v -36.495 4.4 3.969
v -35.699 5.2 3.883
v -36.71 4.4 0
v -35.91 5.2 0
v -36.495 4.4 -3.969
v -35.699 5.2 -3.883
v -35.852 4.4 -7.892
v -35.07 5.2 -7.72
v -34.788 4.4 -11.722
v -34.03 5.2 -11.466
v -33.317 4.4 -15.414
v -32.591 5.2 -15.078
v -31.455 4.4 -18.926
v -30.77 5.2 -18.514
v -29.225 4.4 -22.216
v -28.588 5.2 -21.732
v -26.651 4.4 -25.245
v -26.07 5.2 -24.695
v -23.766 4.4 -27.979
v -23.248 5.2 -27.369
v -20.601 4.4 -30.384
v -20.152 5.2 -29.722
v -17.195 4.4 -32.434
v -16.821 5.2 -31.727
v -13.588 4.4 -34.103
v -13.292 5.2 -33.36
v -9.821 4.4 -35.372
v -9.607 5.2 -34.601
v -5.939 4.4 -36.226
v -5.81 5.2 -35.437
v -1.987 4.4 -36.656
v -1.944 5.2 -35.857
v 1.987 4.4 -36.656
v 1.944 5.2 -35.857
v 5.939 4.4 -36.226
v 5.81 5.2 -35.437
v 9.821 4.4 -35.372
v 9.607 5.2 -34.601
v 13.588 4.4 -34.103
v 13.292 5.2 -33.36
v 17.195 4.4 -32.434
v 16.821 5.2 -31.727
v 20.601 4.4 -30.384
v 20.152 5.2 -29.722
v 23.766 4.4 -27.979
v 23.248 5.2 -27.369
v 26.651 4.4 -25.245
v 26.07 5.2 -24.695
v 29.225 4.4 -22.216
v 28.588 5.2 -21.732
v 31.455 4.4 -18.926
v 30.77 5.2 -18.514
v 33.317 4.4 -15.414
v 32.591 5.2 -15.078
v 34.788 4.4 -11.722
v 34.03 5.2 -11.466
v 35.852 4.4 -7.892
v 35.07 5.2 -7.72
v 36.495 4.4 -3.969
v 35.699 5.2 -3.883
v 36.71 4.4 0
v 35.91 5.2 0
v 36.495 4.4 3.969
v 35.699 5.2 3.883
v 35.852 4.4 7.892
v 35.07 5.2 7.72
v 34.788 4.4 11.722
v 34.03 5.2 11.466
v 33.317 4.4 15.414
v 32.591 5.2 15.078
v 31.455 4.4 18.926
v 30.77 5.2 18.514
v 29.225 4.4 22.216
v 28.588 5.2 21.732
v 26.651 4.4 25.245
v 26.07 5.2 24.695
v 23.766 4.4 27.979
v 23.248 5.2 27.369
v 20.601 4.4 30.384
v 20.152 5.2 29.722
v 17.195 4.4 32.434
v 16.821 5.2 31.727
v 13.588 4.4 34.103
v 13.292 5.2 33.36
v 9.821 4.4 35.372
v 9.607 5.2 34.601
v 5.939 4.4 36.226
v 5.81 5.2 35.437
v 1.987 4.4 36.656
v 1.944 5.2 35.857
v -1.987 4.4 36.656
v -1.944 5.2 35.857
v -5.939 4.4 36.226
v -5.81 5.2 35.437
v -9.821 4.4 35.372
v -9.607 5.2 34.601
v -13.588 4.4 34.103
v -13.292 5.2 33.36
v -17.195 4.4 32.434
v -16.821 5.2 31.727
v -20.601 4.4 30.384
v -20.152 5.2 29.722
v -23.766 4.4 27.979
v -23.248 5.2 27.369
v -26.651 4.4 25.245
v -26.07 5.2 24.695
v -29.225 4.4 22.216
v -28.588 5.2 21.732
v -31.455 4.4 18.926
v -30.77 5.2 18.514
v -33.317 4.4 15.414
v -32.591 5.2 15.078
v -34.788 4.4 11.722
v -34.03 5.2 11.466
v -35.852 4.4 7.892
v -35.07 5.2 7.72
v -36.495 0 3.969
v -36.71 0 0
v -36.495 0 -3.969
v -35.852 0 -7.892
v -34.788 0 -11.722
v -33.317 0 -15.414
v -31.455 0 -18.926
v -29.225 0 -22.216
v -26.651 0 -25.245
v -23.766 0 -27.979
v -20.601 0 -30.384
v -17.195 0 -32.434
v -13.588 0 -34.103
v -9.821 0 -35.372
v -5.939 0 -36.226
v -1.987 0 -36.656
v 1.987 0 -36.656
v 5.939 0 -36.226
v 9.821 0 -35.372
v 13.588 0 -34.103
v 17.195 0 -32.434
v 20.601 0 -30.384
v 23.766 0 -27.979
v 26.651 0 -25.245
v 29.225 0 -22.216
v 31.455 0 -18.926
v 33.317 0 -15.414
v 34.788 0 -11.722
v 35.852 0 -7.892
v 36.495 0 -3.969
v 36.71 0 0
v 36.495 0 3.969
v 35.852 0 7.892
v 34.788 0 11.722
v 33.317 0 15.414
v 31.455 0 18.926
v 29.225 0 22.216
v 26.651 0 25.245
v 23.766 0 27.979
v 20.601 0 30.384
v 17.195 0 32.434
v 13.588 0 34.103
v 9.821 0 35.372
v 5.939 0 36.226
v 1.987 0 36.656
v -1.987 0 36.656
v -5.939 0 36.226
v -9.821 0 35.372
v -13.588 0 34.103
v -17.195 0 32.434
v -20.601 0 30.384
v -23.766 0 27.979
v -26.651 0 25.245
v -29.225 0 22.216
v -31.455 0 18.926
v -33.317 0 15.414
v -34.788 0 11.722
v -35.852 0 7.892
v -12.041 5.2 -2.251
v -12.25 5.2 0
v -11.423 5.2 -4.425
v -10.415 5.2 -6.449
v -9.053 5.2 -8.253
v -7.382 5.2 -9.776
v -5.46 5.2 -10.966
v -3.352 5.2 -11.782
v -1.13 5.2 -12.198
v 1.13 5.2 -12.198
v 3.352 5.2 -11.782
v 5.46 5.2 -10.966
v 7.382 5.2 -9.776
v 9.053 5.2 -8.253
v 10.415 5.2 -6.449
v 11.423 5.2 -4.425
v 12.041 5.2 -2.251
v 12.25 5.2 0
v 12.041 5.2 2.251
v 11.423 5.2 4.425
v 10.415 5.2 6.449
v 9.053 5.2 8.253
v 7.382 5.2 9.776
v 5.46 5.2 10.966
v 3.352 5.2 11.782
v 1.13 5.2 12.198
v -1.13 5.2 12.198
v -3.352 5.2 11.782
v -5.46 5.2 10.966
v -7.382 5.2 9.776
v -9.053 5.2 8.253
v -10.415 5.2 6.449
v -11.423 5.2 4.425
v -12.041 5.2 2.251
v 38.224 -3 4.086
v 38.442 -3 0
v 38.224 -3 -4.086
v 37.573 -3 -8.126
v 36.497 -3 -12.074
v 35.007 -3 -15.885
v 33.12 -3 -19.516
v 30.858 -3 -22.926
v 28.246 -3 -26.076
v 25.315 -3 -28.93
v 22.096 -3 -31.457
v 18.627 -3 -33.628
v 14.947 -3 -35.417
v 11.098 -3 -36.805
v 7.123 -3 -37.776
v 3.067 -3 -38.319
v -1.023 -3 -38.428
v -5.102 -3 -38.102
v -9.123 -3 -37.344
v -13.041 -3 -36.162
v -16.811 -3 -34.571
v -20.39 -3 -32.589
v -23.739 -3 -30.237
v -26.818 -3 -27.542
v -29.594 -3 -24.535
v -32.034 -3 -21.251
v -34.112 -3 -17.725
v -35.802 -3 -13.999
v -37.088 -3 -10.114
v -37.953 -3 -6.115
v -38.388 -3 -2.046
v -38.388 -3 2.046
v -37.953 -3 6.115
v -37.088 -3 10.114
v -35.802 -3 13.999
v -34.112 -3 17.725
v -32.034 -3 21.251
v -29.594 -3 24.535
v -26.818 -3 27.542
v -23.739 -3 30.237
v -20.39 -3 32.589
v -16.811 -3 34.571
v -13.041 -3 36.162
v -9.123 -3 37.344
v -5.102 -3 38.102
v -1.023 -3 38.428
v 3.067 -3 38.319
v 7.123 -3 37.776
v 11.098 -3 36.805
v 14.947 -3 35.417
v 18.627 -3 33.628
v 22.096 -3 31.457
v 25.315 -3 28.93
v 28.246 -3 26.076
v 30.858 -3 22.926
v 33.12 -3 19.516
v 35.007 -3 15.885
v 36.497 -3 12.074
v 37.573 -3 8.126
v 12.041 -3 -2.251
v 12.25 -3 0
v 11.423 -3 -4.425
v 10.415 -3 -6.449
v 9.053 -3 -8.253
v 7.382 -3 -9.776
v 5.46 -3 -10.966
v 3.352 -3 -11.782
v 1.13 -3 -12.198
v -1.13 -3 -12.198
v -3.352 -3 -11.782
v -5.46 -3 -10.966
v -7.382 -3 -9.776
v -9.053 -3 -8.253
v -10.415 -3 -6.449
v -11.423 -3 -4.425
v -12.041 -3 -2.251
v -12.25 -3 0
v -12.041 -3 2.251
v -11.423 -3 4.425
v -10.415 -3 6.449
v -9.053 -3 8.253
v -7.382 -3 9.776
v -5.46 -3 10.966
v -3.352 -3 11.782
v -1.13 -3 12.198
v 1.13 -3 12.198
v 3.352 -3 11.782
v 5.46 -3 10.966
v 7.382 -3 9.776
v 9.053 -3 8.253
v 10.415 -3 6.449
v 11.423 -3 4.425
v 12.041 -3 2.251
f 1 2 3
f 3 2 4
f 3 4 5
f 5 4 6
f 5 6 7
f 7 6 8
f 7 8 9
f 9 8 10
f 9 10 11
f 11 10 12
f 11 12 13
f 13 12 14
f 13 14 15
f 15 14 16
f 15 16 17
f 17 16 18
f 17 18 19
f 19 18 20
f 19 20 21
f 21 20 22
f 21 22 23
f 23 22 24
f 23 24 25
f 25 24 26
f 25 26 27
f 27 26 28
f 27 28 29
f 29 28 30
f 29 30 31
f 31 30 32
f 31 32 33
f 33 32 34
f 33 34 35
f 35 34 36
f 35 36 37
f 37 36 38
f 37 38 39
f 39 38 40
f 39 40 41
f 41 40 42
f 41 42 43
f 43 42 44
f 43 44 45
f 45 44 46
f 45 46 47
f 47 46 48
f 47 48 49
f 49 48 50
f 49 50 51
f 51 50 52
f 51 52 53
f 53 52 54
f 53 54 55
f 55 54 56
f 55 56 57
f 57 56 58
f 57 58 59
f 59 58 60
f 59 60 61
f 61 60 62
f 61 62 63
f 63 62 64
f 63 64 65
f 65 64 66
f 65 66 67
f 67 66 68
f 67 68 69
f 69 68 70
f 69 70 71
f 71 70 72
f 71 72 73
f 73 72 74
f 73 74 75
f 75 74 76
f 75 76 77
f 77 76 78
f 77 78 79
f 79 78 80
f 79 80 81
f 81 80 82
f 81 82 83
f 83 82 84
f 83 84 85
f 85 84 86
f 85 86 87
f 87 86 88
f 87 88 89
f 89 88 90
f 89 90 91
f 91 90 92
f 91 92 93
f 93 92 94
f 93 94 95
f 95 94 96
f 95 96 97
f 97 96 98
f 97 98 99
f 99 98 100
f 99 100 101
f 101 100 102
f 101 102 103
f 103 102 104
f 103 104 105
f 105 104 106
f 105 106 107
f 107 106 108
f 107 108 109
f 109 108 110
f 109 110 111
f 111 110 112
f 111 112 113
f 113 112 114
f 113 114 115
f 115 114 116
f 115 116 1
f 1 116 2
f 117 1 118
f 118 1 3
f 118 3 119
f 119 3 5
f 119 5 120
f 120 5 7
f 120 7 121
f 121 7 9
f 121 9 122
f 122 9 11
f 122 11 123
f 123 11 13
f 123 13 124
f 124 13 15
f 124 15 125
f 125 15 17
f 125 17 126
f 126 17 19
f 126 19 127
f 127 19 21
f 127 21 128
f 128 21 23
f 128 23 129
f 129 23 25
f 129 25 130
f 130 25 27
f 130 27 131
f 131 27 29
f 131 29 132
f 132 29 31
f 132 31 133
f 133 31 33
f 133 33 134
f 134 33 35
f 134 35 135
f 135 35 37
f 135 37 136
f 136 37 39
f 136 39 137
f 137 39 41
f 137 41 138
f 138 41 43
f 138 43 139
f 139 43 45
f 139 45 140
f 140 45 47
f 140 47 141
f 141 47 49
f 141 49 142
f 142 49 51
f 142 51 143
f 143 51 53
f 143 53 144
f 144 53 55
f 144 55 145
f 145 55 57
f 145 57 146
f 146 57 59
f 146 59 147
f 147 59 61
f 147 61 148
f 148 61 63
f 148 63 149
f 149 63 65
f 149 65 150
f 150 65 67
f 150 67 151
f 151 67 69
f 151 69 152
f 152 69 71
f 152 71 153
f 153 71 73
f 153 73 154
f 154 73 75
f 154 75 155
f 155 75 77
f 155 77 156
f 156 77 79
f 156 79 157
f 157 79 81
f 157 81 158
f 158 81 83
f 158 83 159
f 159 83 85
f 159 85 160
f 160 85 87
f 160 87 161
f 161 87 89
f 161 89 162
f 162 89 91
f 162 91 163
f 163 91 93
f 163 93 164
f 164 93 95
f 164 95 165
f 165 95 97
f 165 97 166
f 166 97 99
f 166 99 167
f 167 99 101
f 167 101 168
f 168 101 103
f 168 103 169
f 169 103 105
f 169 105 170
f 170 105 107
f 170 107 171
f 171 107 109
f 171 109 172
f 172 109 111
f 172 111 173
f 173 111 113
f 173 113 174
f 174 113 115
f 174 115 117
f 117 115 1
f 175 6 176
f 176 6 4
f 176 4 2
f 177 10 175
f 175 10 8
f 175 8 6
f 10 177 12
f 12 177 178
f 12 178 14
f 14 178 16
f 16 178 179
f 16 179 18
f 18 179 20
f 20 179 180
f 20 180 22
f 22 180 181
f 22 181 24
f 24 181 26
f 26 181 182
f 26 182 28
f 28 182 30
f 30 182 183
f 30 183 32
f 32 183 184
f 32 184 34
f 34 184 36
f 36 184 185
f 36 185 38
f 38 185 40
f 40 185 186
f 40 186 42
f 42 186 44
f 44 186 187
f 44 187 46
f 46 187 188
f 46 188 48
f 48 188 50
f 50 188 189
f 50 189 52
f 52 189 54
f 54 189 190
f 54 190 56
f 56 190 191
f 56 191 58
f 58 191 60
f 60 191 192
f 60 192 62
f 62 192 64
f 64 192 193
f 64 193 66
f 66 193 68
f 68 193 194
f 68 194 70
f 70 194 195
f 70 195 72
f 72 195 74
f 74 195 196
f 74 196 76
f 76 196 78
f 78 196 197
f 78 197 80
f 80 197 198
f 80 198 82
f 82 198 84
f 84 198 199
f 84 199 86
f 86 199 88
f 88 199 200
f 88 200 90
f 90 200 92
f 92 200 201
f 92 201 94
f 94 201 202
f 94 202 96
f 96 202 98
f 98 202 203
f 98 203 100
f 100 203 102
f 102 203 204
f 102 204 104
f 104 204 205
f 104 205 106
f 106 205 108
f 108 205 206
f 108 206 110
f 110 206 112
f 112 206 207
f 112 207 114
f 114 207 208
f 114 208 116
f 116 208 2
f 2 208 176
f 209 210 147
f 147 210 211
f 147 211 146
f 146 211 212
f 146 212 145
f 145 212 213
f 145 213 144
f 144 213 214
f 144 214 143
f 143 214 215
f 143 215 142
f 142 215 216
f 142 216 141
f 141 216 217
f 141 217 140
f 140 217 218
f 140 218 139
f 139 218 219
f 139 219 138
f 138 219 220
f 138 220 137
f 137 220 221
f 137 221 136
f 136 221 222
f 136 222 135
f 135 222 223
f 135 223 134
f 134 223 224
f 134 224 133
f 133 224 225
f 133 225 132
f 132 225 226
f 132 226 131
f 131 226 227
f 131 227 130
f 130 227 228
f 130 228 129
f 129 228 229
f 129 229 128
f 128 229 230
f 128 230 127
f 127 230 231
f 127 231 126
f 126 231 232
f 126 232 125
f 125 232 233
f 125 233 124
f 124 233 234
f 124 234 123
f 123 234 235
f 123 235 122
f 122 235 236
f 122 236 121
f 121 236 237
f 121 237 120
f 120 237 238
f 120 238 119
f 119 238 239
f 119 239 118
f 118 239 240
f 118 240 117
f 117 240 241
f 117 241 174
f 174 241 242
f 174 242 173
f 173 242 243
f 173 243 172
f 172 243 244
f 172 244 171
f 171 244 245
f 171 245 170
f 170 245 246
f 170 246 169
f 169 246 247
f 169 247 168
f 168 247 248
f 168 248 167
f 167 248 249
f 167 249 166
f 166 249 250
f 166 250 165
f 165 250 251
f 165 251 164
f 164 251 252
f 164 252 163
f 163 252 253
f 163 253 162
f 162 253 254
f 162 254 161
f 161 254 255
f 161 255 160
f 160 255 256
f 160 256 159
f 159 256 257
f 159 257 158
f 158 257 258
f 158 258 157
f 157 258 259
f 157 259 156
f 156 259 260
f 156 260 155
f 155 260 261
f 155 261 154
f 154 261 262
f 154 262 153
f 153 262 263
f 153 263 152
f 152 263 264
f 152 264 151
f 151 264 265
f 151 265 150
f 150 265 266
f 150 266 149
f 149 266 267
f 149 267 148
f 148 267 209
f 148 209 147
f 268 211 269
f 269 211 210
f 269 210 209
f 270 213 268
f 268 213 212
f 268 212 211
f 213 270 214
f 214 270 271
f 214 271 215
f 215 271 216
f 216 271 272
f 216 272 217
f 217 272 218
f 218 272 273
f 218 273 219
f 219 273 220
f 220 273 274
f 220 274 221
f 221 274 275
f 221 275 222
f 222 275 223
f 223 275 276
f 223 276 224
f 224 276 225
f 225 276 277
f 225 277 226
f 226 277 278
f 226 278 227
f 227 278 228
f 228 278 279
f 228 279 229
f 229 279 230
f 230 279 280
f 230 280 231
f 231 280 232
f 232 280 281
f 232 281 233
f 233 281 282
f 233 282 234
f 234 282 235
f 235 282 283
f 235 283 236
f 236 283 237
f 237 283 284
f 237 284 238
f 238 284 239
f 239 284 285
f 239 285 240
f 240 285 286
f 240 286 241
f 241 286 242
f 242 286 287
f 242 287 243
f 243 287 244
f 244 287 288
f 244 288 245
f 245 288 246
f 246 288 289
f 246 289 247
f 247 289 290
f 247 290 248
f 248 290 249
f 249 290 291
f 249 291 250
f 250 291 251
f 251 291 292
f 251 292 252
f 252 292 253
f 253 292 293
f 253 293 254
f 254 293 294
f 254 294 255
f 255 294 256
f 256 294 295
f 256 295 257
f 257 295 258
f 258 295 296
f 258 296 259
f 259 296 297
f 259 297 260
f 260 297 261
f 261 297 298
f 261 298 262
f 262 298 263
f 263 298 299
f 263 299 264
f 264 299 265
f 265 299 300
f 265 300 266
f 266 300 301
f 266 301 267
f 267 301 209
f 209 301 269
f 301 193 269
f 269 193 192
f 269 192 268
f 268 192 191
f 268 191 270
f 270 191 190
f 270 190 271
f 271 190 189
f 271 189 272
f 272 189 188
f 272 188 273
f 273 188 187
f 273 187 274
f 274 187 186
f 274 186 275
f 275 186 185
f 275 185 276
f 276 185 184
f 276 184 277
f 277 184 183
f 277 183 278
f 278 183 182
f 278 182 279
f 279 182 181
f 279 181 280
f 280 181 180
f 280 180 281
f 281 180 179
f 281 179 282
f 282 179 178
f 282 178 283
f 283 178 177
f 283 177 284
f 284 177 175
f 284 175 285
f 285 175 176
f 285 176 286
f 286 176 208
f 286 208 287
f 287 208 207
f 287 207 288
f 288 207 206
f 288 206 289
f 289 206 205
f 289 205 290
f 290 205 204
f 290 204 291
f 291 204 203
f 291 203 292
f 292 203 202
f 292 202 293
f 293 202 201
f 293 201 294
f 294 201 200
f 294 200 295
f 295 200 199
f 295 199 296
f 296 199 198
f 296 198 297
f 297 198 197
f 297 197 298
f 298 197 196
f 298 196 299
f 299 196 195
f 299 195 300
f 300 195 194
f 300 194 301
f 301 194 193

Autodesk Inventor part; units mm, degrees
ref_plane "YZ Plane" through (0, 0, 0) normal (1, 0, 0) x (0, 1, 0)
ref_plane "XZ Plane" through (0, 0, 0) normal (0, 1, 0) x (-1, 0, 0)
ref_plane "XY Plane" through (0, 0, 0) normal (0, 0, 1) x (1, 0, 0)
sketch "Sketch1" plane through (0, 0, 0) normal (0, 1, 0) x (-1, 0, 0)
  circle A0 centre (0, 0) radius 36.71
  circle A1 centre (0, 0) radius 12.25
  dimension "d0" = 73.42
  dimension "d1" = 24.5
extrude "Extrusion1" add sketch "Sketch1" along normal blind 5.2
sketch "Sketch2" plane through (0, 0, 0) normal (0, -1, 0) x (1, 0, 0)
  circle A0 centre (0, 0) radius 36.71 projected
  circle A1 centre (0, 0) radius 36.71
extrude "Extrusion2" add sketch "Sketch2" along normal blind 3 draft 30
chamfer "Chamfer1" distance 0.8 angle 45 1 edges at (36.71, 5.2, 0)
sketch "Sketch3" plane through (0, 0, 0) normal (0, 1, 0) x (1, 0, 0)
  circle A0 centre (0, 0) radius 12.25
extrude "Extrusion3" cut sketch "Sketch3" against normal blind 3
properties part number "base"
